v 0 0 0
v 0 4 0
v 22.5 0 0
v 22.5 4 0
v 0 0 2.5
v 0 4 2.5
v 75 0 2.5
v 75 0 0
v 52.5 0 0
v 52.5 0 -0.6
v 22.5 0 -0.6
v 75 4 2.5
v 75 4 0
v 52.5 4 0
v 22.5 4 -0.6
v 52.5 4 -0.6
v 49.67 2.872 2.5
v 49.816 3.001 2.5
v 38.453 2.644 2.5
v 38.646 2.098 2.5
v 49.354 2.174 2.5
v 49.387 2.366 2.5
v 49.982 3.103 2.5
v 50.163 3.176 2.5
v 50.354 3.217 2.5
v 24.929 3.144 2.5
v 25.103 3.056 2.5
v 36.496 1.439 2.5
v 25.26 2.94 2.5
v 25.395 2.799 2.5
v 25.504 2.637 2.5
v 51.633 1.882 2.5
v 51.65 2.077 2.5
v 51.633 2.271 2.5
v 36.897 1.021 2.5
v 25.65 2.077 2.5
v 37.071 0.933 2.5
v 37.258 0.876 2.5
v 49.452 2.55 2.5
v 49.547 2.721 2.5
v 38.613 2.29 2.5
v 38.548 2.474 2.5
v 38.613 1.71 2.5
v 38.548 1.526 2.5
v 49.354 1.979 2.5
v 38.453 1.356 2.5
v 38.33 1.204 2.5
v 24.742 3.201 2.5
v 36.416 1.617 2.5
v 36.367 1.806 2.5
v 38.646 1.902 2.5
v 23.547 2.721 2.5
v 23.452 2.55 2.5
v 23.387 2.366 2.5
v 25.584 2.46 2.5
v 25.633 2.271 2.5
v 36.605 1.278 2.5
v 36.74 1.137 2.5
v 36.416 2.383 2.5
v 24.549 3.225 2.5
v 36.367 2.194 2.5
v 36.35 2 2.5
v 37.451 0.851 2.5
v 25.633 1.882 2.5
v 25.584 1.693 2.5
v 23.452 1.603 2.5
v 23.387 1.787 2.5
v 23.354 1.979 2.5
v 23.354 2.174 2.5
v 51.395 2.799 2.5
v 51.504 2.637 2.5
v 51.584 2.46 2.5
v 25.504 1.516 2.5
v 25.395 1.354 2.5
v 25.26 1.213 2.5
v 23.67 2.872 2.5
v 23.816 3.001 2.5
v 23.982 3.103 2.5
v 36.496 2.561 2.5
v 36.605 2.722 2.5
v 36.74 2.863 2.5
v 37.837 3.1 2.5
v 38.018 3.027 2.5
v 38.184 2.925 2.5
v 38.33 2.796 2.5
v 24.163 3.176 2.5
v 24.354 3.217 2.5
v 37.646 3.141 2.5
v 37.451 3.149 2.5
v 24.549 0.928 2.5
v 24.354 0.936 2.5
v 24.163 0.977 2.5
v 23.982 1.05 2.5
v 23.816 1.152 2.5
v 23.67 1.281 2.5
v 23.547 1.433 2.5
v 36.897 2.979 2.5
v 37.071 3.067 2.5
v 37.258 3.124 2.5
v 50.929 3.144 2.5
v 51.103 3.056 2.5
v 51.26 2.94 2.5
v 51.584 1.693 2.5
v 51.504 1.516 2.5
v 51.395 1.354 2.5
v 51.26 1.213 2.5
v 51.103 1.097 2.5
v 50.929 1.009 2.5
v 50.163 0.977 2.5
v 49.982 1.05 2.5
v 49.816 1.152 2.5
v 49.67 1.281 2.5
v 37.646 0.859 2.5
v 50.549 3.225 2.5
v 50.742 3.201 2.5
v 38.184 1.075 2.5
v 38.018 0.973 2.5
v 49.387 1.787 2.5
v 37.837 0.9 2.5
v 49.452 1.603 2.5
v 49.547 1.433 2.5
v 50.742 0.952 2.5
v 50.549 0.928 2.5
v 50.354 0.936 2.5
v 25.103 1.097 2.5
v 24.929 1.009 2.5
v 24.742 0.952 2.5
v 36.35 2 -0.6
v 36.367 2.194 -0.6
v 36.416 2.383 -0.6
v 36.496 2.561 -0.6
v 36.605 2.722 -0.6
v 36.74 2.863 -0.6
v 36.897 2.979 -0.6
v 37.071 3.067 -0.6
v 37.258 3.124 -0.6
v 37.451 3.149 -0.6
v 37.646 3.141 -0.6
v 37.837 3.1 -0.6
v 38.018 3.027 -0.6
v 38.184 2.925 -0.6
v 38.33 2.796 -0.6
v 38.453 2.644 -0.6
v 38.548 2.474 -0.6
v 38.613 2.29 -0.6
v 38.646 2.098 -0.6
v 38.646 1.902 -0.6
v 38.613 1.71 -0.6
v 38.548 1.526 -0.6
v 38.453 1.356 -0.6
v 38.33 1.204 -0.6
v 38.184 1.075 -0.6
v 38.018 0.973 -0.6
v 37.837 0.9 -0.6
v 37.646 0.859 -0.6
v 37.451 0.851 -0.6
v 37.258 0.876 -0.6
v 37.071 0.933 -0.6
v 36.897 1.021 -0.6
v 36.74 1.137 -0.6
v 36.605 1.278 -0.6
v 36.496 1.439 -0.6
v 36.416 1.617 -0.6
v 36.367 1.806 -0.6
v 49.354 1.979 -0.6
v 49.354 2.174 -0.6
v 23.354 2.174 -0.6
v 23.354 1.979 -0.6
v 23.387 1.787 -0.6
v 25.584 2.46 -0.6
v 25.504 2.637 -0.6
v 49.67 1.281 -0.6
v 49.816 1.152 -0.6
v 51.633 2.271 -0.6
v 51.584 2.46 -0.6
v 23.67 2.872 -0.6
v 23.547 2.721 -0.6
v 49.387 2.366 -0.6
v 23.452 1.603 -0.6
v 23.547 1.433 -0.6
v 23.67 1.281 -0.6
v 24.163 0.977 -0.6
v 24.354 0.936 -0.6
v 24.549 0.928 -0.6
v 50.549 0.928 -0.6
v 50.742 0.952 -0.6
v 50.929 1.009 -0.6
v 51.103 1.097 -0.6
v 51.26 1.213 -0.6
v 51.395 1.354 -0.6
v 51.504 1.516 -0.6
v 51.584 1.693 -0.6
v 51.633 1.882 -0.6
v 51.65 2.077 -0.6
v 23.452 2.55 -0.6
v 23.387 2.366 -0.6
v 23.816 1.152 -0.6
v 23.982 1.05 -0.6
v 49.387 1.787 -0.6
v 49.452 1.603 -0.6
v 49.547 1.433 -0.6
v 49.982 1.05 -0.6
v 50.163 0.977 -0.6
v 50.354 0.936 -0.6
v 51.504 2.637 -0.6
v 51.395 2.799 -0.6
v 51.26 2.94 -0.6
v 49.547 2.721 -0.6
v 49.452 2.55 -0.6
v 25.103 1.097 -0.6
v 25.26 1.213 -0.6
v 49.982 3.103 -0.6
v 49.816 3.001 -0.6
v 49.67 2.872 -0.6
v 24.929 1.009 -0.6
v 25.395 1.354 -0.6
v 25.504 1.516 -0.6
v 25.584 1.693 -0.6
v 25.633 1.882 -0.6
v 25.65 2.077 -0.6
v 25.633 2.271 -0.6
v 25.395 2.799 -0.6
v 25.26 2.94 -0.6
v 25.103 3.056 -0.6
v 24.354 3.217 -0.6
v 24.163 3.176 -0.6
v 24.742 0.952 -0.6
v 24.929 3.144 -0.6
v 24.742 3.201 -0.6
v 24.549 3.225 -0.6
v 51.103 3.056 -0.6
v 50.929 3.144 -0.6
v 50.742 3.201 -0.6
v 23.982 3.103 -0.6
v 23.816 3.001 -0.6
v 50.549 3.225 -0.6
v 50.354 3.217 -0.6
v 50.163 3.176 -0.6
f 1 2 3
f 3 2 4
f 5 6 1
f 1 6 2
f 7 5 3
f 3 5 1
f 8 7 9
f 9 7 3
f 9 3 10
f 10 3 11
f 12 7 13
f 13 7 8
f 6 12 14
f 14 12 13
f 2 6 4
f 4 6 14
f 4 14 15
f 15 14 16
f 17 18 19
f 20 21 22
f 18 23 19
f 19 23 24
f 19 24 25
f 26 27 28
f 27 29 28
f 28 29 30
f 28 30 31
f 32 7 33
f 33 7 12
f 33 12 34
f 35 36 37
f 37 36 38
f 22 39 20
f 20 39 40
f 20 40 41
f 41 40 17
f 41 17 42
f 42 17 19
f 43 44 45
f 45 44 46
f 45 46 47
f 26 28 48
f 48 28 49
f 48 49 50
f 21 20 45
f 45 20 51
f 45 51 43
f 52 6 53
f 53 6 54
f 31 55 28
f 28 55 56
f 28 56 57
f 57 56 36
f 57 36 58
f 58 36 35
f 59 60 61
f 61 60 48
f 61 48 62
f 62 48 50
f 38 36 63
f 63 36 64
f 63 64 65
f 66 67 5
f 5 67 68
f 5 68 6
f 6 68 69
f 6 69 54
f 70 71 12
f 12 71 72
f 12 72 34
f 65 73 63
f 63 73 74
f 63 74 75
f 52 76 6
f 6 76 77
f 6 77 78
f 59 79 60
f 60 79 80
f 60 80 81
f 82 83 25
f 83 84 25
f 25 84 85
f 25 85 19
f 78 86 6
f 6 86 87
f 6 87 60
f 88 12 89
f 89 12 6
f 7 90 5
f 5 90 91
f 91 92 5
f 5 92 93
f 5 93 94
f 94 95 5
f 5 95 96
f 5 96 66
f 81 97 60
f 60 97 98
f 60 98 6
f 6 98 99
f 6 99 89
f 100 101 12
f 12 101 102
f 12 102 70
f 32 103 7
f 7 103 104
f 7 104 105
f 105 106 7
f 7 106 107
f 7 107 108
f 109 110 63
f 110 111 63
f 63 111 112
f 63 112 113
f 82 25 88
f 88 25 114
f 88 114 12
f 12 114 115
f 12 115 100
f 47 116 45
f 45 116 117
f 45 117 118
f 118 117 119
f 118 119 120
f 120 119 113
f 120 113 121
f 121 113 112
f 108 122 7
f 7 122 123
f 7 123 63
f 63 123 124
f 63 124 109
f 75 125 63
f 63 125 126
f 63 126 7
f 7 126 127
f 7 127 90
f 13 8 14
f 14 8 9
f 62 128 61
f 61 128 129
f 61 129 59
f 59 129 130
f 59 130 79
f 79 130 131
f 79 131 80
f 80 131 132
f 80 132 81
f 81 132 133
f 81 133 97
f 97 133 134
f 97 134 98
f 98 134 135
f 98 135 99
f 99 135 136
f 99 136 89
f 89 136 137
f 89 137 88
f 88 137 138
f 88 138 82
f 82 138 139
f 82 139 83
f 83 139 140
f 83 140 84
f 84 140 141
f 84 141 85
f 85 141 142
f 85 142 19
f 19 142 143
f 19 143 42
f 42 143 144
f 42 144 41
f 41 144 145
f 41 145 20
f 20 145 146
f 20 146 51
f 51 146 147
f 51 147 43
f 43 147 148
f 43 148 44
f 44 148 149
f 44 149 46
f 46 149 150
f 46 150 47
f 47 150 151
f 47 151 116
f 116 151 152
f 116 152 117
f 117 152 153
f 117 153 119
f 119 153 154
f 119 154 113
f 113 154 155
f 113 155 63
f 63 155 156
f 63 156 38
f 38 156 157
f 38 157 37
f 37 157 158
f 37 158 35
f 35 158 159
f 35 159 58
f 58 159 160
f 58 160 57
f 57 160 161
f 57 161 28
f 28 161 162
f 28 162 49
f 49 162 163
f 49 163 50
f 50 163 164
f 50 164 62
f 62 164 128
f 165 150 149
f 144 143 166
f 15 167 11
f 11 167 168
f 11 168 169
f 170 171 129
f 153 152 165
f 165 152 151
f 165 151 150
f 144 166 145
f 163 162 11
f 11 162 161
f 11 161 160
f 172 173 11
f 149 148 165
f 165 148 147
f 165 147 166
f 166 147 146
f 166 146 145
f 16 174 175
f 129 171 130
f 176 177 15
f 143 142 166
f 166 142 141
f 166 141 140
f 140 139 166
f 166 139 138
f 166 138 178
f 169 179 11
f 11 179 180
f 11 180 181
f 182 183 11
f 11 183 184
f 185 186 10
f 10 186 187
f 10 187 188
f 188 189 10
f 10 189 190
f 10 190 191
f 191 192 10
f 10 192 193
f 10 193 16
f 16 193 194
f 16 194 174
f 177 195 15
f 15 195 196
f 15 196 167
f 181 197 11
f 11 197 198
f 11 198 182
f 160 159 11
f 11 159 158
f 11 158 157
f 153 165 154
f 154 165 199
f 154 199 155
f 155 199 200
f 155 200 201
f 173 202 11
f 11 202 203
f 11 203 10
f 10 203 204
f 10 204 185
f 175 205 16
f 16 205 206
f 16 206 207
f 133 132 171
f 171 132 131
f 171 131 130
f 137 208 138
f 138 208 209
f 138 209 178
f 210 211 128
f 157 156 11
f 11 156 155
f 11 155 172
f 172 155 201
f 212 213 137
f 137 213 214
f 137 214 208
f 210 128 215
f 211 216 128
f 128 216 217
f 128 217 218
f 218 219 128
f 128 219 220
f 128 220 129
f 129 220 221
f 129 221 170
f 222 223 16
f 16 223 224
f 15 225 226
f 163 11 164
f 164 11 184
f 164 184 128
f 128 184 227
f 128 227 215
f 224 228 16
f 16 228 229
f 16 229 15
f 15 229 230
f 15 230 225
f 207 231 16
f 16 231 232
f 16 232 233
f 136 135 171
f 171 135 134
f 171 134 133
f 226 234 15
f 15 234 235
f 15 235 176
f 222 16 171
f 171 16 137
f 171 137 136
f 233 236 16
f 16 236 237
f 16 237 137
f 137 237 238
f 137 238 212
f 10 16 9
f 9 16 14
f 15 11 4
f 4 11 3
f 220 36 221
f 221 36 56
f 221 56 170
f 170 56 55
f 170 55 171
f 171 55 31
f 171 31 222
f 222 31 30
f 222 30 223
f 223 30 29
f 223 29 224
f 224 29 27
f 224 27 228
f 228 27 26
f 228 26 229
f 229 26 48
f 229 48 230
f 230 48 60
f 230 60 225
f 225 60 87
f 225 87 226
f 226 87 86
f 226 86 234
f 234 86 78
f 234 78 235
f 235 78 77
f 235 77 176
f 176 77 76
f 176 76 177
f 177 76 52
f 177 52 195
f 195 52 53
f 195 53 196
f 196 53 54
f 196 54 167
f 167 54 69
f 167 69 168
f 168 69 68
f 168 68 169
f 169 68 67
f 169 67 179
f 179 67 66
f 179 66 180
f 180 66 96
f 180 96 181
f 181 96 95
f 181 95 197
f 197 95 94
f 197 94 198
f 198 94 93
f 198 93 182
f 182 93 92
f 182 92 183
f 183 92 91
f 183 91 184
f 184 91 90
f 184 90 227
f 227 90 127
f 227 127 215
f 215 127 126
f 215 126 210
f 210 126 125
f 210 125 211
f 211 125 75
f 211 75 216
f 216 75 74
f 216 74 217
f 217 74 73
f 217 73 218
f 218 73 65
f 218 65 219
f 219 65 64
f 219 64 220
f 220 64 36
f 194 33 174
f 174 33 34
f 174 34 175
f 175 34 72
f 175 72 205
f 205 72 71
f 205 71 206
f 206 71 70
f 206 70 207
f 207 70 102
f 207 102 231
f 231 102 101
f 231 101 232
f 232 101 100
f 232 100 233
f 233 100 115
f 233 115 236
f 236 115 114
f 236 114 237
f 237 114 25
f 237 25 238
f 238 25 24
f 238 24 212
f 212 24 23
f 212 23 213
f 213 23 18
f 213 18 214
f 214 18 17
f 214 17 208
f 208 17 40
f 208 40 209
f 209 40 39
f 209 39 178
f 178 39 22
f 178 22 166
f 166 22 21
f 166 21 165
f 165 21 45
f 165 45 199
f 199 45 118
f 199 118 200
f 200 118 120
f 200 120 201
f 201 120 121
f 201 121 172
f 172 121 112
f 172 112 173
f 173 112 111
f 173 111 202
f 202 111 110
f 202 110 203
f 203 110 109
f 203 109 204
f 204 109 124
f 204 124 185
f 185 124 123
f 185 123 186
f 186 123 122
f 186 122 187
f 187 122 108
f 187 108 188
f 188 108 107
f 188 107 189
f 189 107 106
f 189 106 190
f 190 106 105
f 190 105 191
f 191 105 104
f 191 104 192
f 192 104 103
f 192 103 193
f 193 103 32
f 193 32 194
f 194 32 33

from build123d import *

# Parameters (mm, degrees)
SKETCH1_W           = 75
SKETCH1_H           = 4
BOSS_EXTRUDE1_DEPTH = 2.5
SKETCH2_R           = 1.15
CUT_EXTRUDE1_DEPTH  = 3
SKETCH3_W           = 30
SKETCH3_H           = 4
BOSS_EXTRUDE2_DEPTH = 0.6
SKETCH2_2_R         = 1.15
CUT_EXTRUDE2_DEPTH  = 76.148186938
SKETCH4_R           = 1.15
CUT_EXTRUDE3_DEPTH  = 76.170539442


with BuildPart() as part:
    # Sketch1 → Boss-Extrude1 (new body)
    with BuildSketch(Plane.XY):
        with Locations((37.5, 2)):
            Rectangle(SKETCH1_W, SKETCH1_H)
    extrude(amount=BOSS_EXTRUDE1_DEPTH)

    # Sketch2 → Cut-Extrude1 (cut)
    with BuildSketch(Plane(origin=(0, 0, 0), x_dir=(-1, 0, 0), z_dir=(0, 0, -1))):
        with Locations((-37.5, 2)):
            Circle(SKETCH2_R)
    extrude(amount=-CUT_EXTRUDE1_DEPTH, mode=Mode.SUBTRACT)

    # Sketch3 → Boss-Extrude2 (add)
    with BuildSketch(Plane(origin=(0, 0, 0), x_dir=(-1, 0, 0), z_dir=(0, 0, -1))):
        with Locations((-37.5, 2)):
            Rectangle(SKETCH3_W, SKETCH3_H)
    extrude(amount=BOSS_EXTRUDE2_DEPTH)

    # Sketch2<2> → Cut-Extrude2 (cut, through all)
    with BuildSketch(Plane(origin=(0, 0, 0), x_dir=(-1, 0, 0), z_dir=(0, 0, -1))):
        with Locations((-37.5, 2)):
            Circle(SKETCH2_2_R)
    extrude(amount=CUT_EXTRUDE2_DEPTH, mode=Mode.SUBTRACT)

    # Sketch4 → Cut-Extrude3 (cut, through all)
    with BuildSketch(Plane.XY.offset(2.5)):
        with Locations((24.5, 2.076531631)):
            Circle(SKETCH4_R)
        with Locations((50.5, 2.076531631)):
            Circle(SKETCH4_R)
    extrude(amount=-CUT_EXTRUDE3_DEPTH, mode=Mode.SUBTRACT)


solid = part.part
